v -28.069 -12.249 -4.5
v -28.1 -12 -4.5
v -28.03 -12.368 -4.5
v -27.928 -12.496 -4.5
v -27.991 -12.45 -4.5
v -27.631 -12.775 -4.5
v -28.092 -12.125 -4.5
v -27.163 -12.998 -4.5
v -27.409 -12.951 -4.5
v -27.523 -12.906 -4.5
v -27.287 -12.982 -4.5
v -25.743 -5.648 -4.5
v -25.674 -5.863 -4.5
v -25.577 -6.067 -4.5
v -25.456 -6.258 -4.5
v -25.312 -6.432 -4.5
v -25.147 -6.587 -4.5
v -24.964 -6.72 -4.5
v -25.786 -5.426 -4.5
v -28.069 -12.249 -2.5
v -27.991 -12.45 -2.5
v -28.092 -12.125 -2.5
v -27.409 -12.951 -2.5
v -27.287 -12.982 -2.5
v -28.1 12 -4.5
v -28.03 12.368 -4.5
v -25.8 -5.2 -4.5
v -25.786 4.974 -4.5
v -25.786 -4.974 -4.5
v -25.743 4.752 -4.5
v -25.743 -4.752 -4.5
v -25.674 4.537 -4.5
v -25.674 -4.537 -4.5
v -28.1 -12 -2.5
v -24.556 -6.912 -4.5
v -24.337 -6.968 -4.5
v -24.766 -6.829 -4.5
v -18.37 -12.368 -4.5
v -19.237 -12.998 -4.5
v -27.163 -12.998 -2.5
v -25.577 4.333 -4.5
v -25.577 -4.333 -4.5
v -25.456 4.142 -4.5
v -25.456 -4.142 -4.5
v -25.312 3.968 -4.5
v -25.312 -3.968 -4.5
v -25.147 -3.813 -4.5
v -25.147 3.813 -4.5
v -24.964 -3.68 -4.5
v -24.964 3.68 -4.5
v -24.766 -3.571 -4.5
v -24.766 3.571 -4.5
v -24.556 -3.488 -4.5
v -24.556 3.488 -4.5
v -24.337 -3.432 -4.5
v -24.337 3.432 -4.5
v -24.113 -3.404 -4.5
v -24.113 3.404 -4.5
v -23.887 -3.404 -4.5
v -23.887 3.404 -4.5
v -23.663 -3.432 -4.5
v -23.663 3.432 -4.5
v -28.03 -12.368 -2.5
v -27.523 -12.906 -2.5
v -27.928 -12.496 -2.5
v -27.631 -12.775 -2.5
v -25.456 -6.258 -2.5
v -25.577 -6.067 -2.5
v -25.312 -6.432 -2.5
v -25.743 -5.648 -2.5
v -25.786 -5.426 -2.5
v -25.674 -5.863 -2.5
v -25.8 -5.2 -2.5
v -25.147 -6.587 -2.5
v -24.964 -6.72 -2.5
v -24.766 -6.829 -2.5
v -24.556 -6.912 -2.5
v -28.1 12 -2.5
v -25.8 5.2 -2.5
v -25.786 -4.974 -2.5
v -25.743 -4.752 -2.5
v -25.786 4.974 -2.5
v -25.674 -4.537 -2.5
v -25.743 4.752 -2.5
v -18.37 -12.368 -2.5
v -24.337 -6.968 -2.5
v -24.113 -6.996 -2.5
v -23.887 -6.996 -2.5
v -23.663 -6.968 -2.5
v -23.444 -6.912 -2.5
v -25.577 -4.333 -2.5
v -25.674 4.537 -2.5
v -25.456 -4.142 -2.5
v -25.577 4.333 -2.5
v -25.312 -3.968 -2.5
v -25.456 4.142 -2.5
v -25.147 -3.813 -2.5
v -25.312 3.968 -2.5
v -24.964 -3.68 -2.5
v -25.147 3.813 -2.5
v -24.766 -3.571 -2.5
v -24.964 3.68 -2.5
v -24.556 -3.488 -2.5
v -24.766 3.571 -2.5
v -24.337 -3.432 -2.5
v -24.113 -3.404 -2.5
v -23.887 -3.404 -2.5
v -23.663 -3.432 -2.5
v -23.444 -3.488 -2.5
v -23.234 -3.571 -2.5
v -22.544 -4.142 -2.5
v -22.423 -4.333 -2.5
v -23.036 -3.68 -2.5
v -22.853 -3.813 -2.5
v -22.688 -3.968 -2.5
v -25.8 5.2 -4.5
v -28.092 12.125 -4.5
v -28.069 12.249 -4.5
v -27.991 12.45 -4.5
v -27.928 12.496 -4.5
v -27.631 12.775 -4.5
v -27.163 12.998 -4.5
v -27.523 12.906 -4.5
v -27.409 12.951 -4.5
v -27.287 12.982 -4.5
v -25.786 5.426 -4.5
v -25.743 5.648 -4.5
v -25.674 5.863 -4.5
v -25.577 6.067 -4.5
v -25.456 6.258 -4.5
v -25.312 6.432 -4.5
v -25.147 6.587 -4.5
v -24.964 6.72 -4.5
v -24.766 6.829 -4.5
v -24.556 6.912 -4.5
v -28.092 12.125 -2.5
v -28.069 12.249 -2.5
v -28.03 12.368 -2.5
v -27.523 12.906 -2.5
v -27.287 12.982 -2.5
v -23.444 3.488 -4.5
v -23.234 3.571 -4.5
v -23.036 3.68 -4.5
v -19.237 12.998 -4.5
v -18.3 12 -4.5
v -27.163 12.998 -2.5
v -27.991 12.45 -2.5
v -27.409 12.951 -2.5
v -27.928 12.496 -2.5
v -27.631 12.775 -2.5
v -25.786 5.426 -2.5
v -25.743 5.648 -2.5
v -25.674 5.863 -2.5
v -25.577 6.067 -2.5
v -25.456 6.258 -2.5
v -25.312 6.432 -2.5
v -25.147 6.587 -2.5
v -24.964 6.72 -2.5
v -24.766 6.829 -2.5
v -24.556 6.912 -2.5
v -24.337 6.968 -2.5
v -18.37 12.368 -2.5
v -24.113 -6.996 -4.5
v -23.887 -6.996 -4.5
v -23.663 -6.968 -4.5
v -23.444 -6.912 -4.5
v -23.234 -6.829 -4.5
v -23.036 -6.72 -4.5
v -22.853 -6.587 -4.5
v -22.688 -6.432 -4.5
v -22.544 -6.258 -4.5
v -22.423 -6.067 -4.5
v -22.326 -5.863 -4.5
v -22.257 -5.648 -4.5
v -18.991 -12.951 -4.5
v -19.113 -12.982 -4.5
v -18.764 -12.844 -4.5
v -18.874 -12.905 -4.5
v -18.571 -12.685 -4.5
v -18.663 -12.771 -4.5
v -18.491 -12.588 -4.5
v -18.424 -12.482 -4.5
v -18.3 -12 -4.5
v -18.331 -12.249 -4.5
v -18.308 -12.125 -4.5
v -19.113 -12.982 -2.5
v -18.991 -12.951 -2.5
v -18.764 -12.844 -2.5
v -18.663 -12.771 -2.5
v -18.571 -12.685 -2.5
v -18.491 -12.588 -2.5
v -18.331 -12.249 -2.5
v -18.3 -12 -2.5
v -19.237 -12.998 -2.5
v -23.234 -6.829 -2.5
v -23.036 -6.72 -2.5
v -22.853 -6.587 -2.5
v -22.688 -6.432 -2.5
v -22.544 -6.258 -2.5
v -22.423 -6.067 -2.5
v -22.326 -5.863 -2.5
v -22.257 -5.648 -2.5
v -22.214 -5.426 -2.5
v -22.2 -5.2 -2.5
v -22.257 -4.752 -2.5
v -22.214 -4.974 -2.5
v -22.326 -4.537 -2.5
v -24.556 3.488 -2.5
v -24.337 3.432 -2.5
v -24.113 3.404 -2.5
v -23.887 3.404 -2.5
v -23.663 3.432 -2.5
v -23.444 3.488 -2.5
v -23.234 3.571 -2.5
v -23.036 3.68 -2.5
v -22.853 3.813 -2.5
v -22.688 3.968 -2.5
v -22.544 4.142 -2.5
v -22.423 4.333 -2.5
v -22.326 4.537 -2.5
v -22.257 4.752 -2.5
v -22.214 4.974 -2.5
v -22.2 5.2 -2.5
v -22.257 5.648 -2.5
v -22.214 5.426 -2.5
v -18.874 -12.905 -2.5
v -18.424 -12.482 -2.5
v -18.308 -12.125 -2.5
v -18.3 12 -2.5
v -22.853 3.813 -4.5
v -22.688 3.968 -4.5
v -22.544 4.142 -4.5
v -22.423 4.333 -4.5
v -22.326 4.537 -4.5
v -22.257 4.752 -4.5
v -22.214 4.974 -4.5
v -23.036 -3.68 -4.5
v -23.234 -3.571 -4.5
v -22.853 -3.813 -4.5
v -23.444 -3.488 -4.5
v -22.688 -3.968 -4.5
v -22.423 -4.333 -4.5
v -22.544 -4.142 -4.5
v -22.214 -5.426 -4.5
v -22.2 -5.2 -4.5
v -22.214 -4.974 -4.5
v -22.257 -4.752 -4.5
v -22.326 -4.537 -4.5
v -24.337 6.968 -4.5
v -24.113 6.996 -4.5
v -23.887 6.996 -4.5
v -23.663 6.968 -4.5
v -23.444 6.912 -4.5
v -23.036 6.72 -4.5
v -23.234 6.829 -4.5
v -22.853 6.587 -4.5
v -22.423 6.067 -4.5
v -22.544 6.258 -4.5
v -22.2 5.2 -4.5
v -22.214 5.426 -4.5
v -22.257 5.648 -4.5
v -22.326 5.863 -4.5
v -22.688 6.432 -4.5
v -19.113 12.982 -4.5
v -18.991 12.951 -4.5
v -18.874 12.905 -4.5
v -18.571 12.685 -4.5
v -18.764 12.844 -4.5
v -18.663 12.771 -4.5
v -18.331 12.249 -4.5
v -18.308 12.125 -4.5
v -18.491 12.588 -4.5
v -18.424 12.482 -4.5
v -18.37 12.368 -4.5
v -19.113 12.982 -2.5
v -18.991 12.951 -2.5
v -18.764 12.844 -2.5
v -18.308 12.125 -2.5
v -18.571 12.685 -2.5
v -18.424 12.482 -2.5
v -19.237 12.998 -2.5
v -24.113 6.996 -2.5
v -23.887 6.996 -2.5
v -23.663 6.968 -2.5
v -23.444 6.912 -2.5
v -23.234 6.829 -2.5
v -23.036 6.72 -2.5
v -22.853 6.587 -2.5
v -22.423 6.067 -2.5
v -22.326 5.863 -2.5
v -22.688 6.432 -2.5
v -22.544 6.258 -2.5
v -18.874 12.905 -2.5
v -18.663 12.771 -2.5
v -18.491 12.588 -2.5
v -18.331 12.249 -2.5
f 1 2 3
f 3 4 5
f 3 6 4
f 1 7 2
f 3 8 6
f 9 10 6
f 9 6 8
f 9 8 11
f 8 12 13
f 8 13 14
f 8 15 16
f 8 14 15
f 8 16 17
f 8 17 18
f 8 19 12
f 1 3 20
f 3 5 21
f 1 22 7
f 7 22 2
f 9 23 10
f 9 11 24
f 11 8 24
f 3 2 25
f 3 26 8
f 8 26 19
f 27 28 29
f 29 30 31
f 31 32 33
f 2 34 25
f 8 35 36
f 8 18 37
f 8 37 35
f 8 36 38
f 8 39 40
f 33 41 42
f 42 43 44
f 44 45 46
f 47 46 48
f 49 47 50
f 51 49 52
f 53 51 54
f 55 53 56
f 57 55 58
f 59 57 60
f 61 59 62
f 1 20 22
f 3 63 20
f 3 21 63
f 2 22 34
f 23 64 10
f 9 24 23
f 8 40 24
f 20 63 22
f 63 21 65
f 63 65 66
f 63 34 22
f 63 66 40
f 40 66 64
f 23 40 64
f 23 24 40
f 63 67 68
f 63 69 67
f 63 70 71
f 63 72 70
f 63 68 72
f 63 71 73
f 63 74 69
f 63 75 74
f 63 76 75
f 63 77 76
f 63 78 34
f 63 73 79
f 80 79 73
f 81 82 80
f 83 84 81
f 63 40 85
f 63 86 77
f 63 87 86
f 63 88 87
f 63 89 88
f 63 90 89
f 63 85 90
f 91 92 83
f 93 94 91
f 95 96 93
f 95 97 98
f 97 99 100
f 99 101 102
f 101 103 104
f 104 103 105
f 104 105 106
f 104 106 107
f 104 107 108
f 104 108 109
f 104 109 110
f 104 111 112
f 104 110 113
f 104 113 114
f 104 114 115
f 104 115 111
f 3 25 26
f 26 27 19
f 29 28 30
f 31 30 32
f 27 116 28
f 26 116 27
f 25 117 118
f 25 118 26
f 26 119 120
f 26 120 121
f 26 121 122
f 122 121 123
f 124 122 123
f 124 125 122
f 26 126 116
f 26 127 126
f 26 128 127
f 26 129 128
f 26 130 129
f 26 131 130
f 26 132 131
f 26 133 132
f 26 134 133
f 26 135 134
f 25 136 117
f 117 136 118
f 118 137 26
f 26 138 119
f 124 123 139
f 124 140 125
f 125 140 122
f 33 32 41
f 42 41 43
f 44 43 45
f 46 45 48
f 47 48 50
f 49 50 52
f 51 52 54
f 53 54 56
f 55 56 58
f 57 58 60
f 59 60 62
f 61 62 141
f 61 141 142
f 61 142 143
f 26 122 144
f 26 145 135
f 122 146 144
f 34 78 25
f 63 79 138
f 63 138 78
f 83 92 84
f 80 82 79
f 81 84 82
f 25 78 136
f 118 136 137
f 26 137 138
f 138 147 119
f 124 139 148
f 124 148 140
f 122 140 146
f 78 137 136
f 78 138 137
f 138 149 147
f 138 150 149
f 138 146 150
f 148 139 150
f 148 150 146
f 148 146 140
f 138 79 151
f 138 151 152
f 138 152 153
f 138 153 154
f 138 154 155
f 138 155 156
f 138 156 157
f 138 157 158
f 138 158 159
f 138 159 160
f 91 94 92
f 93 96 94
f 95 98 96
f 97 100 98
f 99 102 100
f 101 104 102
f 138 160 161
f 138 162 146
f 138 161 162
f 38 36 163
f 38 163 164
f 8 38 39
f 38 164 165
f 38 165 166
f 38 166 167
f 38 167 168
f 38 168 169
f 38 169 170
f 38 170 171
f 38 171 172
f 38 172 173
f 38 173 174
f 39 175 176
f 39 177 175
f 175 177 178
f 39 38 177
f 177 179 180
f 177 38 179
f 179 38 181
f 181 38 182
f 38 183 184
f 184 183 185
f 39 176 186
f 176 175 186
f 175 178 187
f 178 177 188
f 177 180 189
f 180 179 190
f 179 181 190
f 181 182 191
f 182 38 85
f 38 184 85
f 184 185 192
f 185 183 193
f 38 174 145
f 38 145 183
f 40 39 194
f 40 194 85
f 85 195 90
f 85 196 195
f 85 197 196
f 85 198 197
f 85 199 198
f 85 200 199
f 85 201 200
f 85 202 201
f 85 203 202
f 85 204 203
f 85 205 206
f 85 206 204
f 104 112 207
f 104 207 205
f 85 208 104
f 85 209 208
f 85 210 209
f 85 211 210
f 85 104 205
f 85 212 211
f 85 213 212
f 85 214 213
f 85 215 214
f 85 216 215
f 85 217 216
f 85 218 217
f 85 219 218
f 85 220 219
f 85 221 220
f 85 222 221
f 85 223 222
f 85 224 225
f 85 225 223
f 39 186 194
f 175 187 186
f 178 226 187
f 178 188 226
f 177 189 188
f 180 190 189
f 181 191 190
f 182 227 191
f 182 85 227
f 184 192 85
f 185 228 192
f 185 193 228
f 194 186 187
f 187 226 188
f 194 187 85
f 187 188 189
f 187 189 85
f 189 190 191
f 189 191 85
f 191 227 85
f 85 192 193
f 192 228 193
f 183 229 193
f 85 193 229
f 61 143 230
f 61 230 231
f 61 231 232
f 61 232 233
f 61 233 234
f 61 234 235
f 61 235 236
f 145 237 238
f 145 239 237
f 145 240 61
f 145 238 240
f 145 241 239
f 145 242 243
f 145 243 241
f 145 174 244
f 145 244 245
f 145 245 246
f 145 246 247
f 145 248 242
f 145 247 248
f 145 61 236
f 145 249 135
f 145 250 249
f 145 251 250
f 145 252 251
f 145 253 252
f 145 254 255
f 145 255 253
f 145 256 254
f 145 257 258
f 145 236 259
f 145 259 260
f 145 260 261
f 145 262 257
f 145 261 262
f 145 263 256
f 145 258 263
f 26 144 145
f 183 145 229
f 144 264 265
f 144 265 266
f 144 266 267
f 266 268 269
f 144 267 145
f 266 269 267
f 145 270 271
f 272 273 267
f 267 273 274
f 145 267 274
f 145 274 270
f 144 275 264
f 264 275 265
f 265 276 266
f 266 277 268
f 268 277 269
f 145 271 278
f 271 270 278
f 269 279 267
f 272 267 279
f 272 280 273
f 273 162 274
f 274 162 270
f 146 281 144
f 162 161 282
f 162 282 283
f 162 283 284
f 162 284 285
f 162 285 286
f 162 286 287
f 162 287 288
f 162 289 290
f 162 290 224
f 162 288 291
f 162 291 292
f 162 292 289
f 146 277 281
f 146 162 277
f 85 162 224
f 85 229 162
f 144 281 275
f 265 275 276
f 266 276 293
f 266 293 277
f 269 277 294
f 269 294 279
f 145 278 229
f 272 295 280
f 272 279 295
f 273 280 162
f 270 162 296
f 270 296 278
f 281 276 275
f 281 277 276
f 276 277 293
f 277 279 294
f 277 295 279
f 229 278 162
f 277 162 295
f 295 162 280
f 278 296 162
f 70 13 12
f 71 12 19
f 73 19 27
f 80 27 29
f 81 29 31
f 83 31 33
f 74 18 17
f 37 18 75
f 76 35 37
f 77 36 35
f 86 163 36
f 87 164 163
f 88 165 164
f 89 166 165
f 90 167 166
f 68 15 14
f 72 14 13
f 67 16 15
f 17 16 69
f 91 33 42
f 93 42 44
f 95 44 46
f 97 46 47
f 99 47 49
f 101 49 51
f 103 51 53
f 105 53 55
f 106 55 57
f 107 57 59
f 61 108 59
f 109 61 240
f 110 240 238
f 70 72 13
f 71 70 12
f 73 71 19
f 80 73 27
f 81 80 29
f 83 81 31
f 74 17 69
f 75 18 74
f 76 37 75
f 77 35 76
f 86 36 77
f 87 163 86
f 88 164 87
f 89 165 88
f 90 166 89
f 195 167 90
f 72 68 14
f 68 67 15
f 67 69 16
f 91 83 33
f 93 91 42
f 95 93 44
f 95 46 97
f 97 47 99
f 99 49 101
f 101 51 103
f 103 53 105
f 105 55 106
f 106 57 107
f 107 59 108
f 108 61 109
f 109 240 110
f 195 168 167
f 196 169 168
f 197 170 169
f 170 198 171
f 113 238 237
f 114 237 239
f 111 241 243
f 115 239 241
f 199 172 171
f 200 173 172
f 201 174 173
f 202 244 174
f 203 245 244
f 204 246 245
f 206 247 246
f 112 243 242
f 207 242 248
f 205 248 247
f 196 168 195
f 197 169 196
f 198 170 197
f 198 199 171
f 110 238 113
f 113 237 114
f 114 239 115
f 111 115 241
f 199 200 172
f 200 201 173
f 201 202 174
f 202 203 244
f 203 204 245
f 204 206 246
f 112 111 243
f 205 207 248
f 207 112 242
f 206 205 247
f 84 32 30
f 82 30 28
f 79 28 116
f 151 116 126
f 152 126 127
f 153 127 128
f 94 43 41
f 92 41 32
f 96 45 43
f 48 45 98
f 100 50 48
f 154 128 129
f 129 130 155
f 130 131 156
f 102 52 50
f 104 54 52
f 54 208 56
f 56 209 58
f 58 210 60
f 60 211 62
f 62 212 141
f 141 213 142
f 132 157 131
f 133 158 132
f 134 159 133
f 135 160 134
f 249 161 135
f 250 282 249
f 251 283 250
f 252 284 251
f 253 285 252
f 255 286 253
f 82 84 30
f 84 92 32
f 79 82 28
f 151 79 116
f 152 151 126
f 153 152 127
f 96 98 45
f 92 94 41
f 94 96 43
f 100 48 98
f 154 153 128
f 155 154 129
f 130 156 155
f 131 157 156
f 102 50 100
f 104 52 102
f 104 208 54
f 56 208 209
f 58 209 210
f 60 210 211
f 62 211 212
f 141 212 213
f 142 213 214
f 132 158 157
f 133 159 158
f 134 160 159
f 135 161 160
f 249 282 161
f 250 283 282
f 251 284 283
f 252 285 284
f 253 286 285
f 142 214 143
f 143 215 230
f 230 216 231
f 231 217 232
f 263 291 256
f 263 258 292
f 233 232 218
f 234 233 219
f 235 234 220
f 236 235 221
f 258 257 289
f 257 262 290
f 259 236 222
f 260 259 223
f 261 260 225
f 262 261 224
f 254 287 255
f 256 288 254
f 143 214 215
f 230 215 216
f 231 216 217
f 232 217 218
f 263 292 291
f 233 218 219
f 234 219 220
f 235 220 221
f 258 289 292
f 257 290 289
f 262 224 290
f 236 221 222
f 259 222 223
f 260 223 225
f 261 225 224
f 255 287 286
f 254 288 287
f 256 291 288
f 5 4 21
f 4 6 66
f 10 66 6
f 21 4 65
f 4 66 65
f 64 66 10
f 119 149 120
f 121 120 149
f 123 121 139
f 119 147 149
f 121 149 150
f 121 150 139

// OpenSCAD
$fn = 50;

difference() {
	union() {
		translate(v = [-23.2, 0, -4.5]) {
			hull() {
				translate(v = [-3.9000000000000004, 12.0, 0]) {
					cylinder(h = 2, r = 1);
				}
				translate(v = [3.9000000000000004, 12.0, 0]) {
					cylinder(h = 2, r = 1);
				}
				translate(v = [-3.9000000000000004, -12.0, 0]) {
					cylinder(h = 2, r = 1);
				}
				translate(v = [3.9000000000000004, -12.0, 0]) {
					cylinder(h = 2, r = 1);
				}
			}
		}
	}
	union() {
		translate(v = [-24, -5.2, -5.5]) {
			cylinder(h = 4, r = 1.8);
		}
		translate(v = [-24, 5.2, -5.5]) {
			cylinder(h = 4, r = 1.8);
		}
		translate(v = [-30, -15, -5.5]) {
			cylinder(h = 4, r = 3.25);
		}
		translate(v = [-30, 15, -5.5]) {
			cylinder(h = 4, r = 3.25);
		}
		translate(v = [15, -15, -5.5]) {
			cylinder(h = 4, r = 3.25);
		}
		translate(v = [15, 15, -5.5]) {
			cylinder(h = 4, r = 3.25);
		}
	}
}
